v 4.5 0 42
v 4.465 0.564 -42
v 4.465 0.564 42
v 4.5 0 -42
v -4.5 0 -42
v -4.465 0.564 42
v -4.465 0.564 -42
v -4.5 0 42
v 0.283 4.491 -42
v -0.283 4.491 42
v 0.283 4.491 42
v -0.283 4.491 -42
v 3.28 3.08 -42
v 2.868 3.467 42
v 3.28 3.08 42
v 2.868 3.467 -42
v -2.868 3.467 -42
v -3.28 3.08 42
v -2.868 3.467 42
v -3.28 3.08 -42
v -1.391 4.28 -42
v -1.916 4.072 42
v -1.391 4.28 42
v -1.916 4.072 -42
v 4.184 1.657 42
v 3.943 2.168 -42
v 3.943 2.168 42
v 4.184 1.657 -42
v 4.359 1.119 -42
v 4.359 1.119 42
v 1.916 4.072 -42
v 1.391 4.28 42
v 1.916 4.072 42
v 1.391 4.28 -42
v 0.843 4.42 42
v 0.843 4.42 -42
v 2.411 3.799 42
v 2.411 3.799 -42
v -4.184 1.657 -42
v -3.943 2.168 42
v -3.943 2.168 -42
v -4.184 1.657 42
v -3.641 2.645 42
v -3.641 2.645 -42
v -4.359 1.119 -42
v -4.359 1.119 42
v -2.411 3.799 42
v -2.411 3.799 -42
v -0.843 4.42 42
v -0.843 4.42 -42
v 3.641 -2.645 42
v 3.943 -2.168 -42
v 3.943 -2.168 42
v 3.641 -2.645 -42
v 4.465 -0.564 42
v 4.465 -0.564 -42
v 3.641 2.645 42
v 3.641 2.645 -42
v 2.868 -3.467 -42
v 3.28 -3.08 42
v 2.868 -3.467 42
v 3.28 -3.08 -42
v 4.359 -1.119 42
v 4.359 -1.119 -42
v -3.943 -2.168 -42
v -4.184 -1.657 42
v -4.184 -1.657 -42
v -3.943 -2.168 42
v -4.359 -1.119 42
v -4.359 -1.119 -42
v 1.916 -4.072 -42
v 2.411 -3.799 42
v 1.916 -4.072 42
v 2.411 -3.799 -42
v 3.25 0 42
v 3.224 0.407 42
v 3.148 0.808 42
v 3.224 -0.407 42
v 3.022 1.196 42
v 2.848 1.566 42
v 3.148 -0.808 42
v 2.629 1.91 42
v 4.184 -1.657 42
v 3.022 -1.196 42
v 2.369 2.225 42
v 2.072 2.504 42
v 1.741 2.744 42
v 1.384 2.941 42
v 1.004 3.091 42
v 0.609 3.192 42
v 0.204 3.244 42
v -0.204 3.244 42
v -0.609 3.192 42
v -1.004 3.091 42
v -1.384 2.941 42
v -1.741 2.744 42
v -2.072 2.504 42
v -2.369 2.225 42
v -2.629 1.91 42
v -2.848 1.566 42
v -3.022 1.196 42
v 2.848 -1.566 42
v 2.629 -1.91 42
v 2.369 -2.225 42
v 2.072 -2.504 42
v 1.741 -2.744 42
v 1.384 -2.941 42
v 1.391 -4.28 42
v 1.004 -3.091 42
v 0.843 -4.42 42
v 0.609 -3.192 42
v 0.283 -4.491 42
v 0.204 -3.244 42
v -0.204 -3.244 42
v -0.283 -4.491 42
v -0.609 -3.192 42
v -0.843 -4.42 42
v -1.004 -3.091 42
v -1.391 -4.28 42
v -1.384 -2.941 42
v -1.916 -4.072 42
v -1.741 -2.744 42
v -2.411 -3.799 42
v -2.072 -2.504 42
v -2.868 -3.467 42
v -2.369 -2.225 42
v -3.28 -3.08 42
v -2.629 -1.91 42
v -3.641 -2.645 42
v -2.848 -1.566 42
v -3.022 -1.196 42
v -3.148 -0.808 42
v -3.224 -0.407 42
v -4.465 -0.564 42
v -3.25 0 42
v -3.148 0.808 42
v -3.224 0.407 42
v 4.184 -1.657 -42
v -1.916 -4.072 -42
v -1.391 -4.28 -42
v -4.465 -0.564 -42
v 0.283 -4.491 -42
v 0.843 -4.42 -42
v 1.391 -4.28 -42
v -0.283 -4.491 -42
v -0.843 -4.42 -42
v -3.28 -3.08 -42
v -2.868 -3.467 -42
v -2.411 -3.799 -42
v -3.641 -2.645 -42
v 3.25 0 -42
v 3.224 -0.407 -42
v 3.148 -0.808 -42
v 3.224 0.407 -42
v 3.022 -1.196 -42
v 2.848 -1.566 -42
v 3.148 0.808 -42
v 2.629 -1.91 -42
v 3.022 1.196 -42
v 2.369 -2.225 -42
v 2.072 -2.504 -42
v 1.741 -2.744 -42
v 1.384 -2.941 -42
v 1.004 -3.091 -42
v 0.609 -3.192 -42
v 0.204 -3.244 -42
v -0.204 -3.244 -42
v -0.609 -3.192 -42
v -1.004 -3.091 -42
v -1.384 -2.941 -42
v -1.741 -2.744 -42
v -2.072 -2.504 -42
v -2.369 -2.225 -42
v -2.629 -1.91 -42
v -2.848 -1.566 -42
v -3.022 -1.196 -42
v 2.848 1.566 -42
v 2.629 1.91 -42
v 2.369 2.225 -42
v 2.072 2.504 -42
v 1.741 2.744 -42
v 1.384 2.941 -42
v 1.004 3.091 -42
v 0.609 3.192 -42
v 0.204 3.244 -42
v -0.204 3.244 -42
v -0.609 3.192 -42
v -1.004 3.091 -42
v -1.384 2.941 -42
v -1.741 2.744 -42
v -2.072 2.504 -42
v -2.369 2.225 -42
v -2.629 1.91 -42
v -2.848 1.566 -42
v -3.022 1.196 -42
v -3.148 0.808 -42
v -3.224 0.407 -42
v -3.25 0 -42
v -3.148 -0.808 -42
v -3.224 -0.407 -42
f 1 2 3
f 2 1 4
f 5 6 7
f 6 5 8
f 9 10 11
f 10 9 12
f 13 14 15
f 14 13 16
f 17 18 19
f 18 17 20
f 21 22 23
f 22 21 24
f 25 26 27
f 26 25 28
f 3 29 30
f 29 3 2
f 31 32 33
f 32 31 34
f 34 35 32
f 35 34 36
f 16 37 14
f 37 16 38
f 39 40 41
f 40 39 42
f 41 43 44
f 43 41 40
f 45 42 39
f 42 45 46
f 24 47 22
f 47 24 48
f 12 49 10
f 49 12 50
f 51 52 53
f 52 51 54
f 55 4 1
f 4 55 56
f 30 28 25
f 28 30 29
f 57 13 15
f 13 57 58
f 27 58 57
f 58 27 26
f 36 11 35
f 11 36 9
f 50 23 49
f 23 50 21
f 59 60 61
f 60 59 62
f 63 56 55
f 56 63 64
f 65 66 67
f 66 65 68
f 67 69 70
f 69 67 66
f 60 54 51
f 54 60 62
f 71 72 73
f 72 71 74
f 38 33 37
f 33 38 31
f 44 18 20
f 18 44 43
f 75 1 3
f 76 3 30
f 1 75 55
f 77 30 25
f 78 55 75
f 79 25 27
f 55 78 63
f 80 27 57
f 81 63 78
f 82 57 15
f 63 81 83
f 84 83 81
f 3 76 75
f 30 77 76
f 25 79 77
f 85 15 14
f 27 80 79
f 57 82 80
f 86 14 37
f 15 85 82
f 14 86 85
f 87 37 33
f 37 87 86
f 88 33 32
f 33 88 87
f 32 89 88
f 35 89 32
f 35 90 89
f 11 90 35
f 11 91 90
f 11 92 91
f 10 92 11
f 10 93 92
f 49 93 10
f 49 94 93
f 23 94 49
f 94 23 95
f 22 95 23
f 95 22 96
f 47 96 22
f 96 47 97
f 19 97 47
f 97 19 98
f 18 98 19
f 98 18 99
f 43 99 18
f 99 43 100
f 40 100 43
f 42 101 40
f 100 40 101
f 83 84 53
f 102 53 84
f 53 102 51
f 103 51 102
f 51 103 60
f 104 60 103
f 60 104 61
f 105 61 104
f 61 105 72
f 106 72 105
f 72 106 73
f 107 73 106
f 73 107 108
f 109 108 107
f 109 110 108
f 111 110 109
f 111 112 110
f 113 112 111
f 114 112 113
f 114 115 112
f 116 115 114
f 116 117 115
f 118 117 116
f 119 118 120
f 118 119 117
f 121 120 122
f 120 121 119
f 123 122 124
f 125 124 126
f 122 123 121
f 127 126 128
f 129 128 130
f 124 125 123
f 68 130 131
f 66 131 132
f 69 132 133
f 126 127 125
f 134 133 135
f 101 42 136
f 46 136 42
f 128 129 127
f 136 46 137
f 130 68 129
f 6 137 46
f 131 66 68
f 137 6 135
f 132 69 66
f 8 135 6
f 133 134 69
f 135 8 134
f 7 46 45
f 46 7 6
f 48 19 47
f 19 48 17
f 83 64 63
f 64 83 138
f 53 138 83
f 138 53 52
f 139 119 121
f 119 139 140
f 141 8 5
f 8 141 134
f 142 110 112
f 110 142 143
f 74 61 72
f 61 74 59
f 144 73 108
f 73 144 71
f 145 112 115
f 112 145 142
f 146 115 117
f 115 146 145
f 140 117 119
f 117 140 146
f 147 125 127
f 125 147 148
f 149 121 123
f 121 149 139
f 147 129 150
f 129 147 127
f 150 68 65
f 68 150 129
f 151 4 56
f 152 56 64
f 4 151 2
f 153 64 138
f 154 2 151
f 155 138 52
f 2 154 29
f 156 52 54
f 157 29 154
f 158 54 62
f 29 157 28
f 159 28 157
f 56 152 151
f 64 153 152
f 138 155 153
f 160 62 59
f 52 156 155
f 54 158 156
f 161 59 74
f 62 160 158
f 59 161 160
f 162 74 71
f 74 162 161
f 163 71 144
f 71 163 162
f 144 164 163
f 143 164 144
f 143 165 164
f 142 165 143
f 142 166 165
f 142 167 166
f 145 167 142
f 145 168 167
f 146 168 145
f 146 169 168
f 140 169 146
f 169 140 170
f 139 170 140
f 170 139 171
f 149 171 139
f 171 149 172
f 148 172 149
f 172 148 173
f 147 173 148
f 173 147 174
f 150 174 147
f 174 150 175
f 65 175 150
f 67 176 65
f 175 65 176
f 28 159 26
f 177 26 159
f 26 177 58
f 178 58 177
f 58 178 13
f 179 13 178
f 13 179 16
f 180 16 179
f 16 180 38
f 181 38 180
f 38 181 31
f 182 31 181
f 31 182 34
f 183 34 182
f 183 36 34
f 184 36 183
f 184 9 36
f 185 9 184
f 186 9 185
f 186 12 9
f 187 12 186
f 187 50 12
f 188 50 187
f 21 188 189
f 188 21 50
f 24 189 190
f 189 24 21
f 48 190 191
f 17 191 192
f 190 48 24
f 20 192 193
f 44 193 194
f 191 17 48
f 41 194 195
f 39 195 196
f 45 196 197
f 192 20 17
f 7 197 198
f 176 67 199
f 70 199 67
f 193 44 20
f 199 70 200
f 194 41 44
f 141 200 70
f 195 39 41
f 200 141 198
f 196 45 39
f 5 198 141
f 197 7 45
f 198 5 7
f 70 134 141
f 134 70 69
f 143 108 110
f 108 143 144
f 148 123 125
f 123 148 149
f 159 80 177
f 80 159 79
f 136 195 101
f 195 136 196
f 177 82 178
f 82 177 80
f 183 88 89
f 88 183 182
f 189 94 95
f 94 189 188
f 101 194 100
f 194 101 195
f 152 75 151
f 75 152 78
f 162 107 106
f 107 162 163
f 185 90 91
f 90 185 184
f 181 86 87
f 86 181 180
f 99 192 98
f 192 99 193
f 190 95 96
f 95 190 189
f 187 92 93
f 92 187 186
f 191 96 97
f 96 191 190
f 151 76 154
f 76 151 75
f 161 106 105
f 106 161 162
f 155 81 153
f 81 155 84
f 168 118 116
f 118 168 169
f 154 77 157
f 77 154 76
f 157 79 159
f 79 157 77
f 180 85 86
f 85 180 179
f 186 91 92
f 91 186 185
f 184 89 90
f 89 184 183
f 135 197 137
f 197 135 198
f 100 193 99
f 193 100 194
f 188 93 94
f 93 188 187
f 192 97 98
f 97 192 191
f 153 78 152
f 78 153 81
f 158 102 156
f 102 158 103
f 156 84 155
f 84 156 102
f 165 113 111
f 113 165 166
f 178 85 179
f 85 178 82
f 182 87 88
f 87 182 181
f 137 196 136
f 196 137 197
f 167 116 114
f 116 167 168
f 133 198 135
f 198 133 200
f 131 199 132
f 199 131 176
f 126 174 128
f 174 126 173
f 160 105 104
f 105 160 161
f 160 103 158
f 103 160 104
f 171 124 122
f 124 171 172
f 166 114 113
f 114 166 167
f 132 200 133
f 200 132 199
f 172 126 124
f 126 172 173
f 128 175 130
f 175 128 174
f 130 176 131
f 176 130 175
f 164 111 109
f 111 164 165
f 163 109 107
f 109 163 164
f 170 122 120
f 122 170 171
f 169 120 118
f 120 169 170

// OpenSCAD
$fn = 50;


difference() {
	union() {
		translate(v = [0, 0, -42.0000000000]) {
			cylinder(h = 84, r = 4.5000000000);
		}
	}
	union() {
		translate(v = [0, 0, -100.0000000000]) {
			cylinder(h = 200, r = 3.2500000000);
		}
	}
}
